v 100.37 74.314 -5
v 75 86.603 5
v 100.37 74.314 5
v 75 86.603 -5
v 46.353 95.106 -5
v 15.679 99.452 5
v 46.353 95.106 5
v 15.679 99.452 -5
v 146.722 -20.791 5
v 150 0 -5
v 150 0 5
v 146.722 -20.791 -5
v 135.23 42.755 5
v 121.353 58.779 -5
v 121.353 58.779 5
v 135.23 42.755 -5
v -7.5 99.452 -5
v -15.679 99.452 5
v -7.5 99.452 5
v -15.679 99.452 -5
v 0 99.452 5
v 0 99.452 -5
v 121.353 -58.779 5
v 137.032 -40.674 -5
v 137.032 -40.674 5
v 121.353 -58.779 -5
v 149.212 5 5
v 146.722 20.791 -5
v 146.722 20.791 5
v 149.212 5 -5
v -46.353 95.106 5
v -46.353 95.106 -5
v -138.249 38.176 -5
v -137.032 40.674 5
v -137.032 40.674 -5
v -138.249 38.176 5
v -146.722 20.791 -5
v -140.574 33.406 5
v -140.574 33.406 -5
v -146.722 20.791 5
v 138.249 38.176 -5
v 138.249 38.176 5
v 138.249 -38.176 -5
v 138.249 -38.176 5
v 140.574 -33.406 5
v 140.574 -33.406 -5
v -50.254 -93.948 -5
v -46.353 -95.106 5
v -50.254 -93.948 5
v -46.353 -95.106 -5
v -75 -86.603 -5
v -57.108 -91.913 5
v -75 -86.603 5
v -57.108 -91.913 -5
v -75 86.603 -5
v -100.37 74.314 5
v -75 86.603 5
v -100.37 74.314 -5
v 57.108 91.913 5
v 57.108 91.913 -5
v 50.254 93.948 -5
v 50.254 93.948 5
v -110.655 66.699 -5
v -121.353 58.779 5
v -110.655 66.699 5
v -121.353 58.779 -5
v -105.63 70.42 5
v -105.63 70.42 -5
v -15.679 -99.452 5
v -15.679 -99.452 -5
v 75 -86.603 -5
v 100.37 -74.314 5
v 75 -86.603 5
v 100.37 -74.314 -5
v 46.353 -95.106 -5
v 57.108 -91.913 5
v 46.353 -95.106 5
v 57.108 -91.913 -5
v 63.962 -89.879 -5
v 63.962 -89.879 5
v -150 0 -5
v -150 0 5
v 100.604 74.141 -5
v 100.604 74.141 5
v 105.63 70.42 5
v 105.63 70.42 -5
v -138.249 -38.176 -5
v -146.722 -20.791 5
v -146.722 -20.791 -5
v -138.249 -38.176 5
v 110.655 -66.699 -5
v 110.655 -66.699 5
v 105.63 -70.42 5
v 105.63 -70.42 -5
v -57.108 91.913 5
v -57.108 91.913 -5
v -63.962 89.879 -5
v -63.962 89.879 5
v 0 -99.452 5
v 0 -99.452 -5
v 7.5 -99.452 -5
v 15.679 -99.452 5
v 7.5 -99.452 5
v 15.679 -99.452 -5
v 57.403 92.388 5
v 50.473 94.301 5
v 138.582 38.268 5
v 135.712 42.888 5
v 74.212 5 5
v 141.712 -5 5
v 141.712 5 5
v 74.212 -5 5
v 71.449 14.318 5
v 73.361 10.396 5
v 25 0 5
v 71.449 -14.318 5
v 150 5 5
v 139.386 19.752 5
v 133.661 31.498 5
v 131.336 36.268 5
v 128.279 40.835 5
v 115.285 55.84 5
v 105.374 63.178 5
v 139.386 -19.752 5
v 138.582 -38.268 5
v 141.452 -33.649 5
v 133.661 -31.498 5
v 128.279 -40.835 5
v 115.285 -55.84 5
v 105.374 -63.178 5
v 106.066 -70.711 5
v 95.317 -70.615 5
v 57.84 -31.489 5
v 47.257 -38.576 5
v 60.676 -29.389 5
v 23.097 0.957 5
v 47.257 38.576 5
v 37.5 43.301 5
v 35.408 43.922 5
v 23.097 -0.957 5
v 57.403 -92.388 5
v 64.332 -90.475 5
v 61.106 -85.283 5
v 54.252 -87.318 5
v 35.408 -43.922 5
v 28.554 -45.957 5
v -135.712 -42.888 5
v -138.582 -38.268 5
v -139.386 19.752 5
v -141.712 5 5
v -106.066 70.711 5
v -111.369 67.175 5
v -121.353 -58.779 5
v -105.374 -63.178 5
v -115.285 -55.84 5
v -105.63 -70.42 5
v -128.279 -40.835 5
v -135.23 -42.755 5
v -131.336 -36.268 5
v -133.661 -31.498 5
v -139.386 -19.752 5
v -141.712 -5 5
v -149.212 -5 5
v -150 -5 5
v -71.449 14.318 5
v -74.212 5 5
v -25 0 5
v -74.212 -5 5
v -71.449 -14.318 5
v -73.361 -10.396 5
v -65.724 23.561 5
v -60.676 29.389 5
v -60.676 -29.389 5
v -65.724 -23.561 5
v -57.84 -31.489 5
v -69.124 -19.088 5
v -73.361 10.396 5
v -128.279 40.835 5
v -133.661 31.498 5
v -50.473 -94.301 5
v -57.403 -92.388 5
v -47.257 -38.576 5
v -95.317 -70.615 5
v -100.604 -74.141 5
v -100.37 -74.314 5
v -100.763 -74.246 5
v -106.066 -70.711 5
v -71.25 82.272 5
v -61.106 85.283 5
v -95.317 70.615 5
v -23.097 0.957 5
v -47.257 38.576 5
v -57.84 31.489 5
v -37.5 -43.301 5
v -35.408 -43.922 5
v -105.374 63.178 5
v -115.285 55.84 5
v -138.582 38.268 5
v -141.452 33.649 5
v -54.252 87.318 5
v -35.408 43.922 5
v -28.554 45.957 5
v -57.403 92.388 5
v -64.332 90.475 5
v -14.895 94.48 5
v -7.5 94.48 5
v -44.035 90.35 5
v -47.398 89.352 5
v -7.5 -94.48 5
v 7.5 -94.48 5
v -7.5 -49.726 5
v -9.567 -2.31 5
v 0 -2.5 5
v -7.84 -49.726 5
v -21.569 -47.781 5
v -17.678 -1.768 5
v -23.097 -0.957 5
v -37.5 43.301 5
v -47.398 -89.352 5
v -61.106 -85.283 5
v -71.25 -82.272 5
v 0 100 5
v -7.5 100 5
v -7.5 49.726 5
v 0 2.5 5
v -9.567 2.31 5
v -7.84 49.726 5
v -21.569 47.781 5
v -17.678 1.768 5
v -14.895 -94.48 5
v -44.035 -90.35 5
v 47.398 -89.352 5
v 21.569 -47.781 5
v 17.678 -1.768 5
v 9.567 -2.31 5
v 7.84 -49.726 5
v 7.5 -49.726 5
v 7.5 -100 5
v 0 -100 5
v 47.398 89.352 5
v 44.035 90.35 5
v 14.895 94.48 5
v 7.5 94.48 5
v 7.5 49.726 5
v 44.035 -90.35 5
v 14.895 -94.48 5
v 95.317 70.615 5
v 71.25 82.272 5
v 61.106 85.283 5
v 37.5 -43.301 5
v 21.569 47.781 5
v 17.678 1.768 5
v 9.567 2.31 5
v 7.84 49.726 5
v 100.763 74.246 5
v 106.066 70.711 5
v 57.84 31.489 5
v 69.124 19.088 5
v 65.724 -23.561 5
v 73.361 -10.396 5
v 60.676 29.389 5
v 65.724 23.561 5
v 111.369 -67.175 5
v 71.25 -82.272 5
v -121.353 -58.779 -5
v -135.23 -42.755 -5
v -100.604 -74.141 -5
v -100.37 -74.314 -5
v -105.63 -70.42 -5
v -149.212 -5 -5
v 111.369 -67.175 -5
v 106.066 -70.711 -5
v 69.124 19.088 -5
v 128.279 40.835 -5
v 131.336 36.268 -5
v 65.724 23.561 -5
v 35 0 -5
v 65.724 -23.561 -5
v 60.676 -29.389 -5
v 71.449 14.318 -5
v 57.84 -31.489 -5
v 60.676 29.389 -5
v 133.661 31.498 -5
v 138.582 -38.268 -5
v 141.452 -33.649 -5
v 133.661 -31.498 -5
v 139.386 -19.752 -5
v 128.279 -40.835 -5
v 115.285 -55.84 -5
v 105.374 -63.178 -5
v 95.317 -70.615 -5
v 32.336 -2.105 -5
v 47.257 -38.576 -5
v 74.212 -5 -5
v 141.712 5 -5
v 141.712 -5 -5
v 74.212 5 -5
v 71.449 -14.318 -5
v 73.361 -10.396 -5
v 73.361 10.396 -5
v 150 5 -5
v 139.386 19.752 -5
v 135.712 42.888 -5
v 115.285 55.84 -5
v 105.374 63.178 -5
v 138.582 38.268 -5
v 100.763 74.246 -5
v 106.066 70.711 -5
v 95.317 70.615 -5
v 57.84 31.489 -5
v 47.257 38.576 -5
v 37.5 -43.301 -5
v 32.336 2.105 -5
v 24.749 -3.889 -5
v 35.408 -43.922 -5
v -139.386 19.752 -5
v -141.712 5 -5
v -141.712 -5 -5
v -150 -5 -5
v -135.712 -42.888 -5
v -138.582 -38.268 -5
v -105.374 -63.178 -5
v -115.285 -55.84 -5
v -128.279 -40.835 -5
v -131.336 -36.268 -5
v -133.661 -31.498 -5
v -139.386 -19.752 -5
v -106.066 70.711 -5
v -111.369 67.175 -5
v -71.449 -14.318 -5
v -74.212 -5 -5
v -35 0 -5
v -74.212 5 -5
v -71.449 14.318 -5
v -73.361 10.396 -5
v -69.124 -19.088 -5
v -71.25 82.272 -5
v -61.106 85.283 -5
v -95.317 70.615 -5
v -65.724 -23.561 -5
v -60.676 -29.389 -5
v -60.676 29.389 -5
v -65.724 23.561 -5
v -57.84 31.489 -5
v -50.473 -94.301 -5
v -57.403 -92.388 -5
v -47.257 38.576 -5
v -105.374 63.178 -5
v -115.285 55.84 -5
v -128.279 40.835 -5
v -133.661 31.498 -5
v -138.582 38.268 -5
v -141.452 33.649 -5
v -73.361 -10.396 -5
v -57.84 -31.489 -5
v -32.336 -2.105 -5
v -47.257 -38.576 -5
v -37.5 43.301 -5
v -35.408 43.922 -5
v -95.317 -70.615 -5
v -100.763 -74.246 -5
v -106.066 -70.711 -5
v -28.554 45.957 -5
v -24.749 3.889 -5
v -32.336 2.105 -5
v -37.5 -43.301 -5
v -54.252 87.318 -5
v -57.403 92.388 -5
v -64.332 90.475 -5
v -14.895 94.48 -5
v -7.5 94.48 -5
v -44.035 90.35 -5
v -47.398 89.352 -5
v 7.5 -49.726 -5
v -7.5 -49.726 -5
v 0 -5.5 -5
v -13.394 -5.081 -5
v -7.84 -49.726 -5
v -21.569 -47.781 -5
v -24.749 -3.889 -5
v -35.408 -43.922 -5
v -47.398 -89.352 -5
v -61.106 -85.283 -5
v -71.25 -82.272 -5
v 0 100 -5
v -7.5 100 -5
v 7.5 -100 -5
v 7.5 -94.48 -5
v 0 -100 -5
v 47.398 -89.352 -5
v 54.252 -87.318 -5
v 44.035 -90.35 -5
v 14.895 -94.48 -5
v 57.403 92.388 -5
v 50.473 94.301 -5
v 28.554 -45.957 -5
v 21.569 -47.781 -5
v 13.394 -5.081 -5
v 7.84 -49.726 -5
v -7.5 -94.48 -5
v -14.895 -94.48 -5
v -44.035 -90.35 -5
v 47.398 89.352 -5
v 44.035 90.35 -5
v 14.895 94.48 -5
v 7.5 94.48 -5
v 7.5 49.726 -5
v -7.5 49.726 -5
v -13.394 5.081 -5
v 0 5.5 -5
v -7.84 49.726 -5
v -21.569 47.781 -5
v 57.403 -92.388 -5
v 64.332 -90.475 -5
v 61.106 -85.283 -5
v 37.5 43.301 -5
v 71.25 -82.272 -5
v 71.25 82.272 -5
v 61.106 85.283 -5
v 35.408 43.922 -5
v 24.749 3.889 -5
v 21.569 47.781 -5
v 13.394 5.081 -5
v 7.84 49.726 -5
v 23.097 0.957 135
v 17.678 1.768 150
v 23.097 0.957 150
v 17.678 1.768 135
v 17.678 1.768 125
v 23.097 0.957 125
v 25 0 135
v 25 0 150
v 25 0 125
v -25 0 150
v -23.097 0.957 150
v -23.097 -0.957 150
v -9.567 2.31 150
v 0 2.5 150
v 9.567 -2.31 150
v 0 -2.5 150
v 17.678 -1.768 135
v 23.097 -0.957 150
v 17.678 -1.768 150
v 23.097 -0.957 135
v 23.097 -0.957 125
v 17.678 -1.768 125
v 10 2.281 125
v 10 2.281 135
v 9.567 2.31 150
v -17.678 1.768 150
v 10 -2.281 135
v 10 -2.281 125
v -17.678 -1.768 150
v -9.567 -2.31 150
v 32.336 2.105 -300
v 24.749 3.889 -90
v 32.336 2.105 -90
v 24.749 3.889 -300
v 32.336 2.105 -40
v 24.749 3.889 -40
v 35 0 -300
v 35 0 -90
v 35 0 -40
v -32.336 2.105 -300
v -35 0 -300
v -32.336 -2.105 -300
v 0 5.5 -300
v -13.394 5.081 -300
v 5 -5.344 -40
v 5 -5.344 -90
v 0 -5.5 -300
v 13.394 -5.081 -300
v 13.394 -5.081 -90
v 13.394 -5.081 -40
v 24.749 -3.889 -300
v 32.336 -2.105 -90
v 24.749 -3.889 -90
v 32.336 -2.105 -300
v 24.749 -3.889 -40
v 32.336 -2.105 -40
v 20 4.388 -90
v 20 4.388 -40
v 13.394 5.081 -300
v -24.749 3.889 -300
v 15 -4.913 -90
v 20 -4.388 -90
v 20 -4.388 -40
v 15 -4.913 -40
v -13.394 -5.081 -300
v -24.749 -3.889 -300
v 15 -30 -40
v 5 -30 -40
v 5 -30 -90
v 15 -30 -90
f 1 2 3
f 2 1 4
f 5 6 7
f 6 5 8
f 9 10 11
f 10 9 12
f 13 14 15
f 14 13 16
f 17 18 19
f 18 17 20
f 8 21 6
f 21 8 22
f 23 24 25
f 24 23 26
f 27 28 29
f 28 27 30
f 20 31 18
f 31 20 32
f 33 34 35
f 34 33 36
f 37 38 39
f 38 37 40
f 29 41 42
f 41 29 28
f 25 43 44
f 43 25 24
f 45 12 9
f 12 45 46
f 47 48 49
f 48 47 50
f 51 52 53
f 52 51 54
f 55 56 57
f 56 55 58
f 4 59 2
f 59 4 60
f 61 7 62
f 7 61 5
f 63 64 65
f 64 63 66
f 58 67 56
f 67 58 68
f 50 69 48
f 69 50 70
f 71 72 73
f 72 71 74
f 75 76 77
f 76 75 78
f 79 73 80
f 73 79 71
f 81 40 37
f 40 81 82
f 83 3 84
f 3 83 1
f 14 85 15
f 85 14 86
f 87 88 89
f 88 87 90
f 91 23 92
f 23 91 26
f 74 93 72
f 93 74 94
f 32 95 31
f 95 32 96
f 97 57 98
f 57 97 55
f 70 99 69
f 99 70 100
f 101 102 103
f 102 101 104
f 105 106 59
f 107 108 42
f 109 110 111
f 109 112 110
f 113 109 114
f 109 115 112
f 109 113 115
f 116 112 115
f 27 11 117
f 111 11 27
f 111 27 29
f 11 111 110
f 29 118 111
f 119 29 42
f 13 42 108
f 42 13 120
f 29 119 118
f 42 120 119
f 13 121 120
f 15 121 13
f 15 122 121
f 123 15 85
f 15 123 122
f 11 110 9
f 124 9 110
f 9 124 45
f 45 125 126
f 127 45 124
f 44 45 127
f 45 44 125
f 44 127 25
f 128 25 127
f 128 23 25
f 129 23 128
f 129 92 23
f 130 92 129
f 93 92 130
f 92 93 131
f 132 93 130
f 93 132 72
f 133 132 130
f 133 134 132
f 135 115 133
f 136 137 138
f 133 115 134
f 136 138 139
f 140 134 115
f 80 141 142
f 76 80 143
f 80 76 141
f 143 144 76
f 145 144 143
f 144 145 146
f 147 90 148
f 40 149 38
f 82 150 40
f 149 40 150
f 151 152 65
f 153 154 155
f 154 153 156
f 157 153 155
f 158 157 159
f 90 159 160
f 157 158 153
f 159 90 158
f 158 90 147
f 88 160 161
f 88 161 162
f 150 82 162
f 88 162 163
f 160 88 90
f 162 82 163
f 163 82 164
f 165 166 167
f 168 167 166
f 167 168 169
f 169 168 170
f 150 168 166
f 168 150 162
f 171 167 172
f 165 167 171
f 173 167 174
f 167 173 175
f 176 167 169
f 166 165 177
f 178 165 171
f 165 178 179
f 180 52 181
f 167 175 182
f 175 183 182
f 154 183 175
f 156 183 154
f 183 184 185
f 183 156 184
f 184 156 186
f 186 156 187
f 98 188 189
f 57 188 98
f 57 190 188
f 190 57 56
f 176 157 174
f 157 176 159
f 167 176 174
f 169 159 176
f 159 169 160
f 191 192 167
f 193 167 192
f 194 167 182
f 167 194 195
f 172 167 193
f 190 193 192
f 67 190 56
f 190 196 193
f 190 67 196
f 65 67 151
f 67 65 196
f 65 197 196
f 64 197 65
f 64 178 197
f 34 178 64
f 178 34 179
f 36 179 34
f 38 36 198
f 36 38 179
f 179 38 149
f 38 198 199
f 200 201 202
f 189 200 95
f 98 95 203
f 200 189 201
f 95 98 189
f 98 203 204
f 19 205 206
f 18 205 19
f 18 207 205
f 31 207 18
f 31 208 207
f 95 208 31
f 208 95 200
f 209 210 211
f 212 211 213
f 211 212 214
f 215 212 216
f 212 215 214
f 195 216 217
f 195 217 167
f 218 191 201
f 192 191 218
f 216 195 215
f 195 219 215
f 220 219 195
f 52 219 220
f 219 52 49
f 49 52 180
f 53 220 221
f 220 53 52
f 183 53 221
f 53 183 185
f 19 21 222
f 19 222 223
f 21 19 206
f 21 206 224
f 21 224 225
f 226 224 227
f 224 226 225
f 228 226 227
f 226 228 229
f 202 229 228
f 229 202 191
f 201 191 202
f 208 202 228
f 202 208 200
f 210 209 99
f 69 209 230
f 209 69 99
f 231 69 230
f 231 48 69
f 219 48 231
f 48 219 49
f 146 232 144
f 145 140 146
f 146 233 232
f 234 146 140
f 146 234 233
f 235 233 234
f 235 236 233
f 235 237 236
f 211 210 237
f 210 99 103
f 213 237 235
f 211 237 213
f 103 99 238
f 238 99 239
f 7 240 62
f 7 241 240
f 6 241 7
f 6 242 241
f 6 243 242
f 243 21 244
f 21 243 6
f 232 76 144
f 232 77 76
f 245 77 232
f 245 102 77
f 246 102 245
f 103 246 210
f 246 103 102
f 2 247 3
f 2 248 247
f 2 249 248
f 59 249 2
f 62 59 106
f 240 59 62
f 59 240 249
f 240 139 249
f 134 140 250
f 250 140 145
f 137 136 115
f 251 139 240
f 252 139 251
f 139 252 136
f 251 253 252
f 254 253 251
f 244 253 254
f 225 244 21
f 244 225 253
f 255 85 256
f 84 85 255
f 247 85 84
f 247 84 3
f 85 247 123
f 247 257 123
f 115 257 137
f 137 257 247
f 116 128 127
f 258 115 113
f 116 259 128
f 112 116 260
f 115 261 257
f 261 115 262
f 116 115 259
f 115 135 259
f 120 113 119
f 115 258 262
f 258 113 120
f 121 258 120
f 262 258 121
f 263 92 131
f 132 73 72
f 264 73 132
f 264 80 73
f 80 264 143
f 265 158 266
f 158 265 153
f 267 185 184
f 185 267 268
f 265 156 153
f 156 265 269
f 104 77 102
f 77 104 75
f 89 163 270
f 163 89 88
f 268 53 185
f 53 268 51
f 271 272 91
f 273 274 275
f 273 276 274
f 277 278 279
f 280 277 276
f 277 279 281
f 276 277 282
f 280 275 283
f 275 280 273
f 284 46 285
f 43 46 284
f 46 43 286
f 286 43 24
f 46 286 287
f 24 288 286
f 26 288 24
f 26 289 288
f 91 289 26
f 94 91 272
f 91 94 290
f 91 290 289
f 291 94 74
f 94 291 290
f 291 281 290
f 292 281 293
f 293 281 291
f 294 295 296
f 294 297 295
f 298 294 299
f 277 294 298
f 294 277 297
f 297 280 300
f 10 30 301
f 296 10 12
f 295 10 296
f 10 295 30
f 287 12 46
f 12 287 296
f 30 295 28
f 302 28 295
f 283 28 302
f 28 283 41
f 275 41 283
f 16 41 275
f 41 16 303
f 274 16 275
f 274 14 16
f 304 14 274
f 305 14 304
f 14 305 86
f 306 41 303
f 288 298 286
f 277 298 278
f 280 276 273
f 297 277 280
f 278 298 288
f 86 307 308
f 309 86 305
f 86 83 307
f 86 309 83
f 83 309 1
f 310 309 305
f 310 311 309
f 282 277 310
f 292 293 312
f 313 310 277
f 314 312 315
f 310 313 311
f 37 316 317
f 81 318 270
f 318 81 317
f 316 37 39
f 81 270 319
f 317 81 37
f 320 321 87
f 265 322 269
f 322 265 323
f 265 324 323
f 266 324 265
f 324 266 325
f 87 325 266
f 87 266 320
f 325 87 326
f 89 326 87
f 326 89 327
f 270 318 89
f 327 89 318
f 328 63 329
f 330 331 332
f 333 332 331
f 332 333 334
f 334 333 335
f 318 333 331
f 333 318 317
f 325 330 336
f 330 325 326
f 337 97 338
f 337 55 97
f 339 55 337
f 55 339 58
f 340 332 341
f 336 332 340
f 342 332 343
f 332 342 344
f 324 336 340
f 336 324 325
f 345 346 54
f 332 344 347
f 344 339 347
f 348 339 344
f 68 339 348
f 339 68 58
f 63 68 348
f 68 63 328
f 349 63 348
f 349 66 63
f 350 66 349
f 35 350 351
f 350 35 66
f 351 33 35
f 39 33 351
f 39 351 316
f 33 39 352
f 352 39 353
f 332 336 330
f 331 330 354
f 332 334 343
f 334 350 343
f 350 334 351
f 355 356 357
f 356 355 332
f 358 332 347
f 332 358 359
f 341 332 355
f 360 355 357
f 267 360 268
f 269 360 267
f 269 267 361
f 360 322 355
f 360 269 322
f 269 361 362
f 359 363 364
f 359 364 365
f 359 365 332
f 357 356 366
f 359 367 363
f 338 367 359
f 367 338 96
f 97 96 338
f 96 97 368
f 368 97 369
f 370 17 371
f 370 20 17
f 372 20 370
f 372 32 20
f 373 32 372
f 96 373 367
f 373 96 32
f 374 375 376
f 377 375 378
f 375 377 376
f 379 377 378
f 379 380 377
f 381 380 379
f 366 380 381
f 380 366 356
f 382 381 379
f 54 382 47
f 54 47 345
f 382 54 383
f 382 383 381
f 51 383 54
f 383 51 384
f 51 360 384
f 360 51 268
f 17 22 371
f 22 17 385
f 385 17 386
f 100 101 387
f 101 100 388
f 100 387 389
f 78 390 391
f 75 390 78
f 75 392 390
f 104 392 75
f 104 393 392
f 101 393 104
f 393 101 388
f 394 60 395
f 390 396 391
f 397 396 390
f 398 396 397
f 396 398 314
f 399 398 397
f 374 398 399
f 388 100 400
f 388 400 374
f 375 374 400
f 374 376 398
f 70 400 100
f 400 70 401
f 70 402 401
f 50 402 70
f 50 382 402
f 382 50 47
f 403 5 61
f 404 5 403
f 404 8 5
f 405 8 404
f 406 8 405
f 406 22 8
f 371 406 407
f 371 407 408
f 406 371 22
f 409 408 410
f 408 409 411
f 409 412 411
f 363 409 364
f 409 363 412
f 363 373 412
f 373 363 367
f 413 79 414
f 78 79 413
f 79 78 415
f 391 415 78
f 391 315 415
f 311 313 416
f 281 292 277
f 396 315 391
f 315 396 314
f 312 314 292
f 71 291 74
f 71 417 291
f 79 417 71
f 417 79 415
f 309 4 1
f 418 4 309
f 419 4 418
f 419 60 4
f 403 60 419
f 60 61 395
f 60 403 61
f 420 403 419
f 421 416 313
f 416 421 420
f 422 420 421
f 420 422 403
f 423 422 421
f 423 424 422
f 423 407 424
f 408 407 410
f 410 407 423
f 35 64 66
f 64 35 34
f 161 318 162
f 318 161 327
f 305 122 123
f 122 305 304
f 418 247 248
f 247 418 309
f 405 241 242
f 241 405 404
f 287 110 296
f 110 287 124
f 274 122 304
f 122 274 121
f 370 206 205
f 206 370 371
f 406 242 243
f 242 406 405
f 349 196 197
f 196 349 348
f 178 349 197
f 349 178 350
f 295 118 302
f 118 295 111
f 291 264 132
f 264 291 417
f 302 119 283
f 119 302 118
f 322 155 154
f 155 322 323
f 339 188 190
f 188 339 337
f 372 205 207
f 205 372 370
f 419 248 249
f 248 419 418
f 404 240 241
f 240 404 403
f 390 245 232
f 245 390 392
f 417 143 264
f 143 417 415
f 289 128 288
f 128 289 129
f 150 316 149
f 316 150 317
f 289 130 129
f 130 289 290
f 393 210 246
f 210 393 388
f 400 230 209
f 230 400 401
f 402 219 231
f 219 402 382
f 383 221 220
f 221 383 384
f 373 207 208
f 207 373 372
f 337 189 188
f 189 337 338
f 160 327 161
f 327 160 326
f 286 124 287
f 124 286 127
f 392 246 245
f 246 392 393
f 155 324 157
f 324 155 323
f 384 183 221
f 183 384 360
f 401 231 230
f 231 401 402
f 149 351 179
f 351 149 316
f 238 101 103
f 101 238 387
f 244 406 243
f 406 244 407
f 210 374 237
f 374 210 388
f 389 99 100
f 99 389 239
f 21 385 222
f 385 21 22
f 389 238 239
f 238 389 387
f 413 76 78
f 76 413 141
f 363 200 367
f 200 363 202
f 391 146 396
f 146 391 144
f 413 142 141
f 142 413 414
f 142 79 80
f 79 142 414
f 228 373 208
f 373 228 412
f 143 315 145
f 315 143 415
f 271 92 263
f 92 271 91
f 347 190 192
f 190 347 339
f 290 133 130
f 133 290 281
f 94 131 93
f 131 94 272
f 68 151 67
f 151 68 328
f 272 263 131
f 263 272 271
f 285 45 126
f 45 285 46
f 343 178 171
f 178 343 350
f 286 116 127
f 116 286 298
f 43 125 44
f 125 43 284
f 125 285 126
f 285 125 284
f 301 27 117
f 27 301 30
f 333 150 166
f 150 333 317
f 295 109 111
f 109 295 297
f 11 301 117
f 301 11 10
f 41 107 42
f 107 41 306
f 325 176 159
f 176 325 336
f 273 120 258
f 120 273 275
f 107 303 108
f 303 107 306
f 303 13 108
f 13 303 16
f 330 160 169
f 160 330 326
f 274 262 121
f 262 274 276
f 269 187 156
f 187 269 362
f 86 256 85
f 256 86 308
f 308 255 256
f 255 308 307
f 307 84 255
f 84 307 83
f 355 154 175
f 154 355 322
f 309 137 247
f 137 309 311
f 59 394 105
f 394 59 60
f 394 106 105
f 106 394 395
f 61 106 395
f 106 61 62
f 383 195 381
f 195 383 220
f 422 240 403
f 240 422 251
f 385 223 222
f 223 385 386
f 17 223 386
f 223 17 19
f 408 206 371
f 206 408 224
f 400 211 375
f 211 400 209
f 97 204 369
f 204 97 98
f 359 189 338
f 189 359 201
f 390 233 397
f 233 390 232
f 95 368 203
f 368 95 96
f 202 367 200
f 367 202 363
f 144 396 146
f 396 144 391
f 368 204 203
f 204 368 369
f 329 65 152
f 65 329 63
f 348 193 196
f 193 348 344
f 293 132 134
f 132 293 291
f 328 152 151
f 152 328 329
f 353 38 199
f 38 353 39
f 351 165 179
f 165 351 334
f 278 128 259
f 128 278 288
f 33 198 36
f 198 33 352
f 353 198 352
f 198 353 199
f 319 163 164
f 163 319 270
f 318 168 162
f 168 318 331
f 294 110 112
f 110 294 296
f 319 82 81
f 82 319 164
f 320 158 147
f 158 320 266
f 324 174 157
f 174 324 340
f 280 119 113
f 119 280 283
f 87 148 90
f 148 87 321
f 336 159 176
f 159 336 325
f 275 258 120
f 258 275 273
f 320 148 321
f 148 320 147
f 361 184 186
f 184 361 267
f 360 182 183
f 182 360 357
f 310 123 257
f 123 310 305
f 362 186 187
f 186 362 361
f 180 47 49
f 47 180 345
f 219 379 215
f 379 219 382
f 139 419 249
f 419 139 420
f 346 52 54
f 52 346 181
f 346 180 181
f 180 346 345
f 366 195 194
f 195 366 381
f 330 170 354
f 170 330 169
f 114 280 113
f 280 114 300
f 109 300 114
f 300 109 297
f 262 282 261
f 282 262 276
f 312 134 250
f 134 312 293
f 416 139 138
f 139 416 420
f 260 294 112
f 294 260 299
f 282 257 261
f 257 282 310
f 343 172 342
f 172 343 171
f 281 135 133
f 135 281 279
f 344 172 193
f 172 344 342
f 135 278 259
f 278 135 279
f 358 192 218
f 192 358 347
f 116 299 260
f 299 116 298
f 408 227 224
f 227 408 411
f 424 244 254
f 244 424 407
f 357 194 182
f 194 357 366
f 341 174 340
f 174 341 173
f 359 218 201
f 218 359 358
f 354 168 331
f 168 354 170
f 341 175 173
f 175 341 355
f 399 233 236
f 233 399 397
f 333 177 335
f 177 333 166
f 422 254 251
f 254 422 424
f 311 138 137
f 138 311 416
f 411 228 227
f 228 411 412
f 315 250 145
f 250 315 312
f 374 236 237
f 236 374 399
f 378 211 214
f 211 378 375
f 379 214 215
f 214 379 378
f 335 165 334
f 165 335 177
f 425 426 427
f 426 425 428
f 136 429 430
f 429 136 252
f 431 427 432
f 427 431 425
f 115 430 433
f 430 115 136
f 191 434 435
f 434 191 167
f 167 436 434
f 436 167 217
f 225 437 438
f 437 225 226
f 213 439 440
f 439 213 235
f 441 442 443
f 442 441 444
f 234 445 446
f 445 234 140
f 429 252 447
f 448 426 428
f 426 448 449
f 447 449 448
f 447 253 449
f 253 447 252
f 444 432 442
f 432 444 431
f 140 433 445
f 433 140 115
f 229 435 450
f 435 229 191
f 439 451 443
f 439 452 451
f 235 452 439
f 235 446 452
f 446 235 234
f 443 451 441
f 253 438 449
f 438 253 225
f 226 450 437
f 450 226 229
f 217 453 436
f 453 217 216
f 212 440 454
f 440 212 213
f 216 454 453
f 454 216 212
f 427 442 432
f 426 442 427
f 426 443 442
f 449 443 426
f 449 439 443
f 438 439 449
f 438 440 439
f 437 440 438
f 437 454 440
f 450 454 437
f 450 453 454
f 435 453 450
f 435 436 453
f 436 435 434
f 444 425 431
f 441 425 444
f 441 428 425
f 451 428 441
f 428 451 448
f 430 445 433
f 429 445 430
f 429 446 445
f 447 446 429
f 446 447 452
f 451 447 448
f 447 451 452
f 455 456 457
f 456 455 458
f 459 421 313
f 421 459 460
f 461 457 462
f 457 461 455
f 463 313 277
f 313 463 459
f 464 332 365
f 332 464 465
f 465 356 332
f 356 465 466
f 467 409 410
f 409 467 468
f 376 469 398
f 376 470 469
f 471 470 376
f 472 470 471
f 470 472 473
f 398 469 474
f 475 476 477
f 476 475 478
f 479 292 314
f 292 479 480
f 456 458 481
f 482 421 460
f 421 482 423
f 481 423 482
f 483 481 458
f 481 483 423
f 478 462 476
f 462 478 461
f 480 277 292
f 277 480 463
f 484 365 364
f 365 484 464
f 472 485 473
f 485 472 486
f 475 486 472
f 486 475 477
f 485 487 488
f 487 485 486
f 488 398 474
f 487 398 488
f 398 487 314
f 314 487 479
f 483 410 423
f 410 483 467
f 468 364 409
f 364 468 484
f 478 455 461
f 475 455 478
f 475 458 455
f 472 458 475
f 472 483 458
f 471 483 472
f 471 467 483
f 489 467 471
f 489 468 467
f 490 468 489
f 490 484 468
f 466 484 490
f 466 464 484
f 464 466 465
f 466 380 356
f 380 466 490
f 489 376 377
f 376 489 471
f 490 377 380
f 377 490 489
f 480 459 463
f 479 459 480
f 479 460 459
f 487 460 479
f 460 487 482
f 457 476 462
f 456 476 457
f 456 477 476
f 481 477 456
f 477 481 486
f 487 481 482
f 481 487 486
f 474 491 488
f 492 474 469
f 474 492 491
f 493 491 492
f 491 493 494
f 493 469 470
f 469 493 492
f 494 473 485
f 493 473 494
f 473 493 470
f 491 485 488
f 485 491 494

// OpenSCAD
scale([1.5,1,1])
    {
    cylinder(10,50,50,center=true);
    difference()
        {
            cylinder(10,100,100,center=true);
            cylinder(10,95,95,center=true);
        }
    for (i = [0:22.5:337.5]) { 
        rotate([0,0,i])
            translate([0,-100,-5])
                cube([5,195,10]);
            }
    }

difference() {
    scale([5,0.5,1])
        cylinder (150, 5, 5);
    translate([10,-10,125])
            cube([20,20,10]);
            }

difference() {
    scale([7,1.1,1])
        translate([0,0,-300])
            cylinder (300, 5, 5);
    translate([20,-10,-90])
                cube([20,20,50]);
}

translate([15,-30,-90])
rotate([0,0,90])
                cube([30,10,50]);
